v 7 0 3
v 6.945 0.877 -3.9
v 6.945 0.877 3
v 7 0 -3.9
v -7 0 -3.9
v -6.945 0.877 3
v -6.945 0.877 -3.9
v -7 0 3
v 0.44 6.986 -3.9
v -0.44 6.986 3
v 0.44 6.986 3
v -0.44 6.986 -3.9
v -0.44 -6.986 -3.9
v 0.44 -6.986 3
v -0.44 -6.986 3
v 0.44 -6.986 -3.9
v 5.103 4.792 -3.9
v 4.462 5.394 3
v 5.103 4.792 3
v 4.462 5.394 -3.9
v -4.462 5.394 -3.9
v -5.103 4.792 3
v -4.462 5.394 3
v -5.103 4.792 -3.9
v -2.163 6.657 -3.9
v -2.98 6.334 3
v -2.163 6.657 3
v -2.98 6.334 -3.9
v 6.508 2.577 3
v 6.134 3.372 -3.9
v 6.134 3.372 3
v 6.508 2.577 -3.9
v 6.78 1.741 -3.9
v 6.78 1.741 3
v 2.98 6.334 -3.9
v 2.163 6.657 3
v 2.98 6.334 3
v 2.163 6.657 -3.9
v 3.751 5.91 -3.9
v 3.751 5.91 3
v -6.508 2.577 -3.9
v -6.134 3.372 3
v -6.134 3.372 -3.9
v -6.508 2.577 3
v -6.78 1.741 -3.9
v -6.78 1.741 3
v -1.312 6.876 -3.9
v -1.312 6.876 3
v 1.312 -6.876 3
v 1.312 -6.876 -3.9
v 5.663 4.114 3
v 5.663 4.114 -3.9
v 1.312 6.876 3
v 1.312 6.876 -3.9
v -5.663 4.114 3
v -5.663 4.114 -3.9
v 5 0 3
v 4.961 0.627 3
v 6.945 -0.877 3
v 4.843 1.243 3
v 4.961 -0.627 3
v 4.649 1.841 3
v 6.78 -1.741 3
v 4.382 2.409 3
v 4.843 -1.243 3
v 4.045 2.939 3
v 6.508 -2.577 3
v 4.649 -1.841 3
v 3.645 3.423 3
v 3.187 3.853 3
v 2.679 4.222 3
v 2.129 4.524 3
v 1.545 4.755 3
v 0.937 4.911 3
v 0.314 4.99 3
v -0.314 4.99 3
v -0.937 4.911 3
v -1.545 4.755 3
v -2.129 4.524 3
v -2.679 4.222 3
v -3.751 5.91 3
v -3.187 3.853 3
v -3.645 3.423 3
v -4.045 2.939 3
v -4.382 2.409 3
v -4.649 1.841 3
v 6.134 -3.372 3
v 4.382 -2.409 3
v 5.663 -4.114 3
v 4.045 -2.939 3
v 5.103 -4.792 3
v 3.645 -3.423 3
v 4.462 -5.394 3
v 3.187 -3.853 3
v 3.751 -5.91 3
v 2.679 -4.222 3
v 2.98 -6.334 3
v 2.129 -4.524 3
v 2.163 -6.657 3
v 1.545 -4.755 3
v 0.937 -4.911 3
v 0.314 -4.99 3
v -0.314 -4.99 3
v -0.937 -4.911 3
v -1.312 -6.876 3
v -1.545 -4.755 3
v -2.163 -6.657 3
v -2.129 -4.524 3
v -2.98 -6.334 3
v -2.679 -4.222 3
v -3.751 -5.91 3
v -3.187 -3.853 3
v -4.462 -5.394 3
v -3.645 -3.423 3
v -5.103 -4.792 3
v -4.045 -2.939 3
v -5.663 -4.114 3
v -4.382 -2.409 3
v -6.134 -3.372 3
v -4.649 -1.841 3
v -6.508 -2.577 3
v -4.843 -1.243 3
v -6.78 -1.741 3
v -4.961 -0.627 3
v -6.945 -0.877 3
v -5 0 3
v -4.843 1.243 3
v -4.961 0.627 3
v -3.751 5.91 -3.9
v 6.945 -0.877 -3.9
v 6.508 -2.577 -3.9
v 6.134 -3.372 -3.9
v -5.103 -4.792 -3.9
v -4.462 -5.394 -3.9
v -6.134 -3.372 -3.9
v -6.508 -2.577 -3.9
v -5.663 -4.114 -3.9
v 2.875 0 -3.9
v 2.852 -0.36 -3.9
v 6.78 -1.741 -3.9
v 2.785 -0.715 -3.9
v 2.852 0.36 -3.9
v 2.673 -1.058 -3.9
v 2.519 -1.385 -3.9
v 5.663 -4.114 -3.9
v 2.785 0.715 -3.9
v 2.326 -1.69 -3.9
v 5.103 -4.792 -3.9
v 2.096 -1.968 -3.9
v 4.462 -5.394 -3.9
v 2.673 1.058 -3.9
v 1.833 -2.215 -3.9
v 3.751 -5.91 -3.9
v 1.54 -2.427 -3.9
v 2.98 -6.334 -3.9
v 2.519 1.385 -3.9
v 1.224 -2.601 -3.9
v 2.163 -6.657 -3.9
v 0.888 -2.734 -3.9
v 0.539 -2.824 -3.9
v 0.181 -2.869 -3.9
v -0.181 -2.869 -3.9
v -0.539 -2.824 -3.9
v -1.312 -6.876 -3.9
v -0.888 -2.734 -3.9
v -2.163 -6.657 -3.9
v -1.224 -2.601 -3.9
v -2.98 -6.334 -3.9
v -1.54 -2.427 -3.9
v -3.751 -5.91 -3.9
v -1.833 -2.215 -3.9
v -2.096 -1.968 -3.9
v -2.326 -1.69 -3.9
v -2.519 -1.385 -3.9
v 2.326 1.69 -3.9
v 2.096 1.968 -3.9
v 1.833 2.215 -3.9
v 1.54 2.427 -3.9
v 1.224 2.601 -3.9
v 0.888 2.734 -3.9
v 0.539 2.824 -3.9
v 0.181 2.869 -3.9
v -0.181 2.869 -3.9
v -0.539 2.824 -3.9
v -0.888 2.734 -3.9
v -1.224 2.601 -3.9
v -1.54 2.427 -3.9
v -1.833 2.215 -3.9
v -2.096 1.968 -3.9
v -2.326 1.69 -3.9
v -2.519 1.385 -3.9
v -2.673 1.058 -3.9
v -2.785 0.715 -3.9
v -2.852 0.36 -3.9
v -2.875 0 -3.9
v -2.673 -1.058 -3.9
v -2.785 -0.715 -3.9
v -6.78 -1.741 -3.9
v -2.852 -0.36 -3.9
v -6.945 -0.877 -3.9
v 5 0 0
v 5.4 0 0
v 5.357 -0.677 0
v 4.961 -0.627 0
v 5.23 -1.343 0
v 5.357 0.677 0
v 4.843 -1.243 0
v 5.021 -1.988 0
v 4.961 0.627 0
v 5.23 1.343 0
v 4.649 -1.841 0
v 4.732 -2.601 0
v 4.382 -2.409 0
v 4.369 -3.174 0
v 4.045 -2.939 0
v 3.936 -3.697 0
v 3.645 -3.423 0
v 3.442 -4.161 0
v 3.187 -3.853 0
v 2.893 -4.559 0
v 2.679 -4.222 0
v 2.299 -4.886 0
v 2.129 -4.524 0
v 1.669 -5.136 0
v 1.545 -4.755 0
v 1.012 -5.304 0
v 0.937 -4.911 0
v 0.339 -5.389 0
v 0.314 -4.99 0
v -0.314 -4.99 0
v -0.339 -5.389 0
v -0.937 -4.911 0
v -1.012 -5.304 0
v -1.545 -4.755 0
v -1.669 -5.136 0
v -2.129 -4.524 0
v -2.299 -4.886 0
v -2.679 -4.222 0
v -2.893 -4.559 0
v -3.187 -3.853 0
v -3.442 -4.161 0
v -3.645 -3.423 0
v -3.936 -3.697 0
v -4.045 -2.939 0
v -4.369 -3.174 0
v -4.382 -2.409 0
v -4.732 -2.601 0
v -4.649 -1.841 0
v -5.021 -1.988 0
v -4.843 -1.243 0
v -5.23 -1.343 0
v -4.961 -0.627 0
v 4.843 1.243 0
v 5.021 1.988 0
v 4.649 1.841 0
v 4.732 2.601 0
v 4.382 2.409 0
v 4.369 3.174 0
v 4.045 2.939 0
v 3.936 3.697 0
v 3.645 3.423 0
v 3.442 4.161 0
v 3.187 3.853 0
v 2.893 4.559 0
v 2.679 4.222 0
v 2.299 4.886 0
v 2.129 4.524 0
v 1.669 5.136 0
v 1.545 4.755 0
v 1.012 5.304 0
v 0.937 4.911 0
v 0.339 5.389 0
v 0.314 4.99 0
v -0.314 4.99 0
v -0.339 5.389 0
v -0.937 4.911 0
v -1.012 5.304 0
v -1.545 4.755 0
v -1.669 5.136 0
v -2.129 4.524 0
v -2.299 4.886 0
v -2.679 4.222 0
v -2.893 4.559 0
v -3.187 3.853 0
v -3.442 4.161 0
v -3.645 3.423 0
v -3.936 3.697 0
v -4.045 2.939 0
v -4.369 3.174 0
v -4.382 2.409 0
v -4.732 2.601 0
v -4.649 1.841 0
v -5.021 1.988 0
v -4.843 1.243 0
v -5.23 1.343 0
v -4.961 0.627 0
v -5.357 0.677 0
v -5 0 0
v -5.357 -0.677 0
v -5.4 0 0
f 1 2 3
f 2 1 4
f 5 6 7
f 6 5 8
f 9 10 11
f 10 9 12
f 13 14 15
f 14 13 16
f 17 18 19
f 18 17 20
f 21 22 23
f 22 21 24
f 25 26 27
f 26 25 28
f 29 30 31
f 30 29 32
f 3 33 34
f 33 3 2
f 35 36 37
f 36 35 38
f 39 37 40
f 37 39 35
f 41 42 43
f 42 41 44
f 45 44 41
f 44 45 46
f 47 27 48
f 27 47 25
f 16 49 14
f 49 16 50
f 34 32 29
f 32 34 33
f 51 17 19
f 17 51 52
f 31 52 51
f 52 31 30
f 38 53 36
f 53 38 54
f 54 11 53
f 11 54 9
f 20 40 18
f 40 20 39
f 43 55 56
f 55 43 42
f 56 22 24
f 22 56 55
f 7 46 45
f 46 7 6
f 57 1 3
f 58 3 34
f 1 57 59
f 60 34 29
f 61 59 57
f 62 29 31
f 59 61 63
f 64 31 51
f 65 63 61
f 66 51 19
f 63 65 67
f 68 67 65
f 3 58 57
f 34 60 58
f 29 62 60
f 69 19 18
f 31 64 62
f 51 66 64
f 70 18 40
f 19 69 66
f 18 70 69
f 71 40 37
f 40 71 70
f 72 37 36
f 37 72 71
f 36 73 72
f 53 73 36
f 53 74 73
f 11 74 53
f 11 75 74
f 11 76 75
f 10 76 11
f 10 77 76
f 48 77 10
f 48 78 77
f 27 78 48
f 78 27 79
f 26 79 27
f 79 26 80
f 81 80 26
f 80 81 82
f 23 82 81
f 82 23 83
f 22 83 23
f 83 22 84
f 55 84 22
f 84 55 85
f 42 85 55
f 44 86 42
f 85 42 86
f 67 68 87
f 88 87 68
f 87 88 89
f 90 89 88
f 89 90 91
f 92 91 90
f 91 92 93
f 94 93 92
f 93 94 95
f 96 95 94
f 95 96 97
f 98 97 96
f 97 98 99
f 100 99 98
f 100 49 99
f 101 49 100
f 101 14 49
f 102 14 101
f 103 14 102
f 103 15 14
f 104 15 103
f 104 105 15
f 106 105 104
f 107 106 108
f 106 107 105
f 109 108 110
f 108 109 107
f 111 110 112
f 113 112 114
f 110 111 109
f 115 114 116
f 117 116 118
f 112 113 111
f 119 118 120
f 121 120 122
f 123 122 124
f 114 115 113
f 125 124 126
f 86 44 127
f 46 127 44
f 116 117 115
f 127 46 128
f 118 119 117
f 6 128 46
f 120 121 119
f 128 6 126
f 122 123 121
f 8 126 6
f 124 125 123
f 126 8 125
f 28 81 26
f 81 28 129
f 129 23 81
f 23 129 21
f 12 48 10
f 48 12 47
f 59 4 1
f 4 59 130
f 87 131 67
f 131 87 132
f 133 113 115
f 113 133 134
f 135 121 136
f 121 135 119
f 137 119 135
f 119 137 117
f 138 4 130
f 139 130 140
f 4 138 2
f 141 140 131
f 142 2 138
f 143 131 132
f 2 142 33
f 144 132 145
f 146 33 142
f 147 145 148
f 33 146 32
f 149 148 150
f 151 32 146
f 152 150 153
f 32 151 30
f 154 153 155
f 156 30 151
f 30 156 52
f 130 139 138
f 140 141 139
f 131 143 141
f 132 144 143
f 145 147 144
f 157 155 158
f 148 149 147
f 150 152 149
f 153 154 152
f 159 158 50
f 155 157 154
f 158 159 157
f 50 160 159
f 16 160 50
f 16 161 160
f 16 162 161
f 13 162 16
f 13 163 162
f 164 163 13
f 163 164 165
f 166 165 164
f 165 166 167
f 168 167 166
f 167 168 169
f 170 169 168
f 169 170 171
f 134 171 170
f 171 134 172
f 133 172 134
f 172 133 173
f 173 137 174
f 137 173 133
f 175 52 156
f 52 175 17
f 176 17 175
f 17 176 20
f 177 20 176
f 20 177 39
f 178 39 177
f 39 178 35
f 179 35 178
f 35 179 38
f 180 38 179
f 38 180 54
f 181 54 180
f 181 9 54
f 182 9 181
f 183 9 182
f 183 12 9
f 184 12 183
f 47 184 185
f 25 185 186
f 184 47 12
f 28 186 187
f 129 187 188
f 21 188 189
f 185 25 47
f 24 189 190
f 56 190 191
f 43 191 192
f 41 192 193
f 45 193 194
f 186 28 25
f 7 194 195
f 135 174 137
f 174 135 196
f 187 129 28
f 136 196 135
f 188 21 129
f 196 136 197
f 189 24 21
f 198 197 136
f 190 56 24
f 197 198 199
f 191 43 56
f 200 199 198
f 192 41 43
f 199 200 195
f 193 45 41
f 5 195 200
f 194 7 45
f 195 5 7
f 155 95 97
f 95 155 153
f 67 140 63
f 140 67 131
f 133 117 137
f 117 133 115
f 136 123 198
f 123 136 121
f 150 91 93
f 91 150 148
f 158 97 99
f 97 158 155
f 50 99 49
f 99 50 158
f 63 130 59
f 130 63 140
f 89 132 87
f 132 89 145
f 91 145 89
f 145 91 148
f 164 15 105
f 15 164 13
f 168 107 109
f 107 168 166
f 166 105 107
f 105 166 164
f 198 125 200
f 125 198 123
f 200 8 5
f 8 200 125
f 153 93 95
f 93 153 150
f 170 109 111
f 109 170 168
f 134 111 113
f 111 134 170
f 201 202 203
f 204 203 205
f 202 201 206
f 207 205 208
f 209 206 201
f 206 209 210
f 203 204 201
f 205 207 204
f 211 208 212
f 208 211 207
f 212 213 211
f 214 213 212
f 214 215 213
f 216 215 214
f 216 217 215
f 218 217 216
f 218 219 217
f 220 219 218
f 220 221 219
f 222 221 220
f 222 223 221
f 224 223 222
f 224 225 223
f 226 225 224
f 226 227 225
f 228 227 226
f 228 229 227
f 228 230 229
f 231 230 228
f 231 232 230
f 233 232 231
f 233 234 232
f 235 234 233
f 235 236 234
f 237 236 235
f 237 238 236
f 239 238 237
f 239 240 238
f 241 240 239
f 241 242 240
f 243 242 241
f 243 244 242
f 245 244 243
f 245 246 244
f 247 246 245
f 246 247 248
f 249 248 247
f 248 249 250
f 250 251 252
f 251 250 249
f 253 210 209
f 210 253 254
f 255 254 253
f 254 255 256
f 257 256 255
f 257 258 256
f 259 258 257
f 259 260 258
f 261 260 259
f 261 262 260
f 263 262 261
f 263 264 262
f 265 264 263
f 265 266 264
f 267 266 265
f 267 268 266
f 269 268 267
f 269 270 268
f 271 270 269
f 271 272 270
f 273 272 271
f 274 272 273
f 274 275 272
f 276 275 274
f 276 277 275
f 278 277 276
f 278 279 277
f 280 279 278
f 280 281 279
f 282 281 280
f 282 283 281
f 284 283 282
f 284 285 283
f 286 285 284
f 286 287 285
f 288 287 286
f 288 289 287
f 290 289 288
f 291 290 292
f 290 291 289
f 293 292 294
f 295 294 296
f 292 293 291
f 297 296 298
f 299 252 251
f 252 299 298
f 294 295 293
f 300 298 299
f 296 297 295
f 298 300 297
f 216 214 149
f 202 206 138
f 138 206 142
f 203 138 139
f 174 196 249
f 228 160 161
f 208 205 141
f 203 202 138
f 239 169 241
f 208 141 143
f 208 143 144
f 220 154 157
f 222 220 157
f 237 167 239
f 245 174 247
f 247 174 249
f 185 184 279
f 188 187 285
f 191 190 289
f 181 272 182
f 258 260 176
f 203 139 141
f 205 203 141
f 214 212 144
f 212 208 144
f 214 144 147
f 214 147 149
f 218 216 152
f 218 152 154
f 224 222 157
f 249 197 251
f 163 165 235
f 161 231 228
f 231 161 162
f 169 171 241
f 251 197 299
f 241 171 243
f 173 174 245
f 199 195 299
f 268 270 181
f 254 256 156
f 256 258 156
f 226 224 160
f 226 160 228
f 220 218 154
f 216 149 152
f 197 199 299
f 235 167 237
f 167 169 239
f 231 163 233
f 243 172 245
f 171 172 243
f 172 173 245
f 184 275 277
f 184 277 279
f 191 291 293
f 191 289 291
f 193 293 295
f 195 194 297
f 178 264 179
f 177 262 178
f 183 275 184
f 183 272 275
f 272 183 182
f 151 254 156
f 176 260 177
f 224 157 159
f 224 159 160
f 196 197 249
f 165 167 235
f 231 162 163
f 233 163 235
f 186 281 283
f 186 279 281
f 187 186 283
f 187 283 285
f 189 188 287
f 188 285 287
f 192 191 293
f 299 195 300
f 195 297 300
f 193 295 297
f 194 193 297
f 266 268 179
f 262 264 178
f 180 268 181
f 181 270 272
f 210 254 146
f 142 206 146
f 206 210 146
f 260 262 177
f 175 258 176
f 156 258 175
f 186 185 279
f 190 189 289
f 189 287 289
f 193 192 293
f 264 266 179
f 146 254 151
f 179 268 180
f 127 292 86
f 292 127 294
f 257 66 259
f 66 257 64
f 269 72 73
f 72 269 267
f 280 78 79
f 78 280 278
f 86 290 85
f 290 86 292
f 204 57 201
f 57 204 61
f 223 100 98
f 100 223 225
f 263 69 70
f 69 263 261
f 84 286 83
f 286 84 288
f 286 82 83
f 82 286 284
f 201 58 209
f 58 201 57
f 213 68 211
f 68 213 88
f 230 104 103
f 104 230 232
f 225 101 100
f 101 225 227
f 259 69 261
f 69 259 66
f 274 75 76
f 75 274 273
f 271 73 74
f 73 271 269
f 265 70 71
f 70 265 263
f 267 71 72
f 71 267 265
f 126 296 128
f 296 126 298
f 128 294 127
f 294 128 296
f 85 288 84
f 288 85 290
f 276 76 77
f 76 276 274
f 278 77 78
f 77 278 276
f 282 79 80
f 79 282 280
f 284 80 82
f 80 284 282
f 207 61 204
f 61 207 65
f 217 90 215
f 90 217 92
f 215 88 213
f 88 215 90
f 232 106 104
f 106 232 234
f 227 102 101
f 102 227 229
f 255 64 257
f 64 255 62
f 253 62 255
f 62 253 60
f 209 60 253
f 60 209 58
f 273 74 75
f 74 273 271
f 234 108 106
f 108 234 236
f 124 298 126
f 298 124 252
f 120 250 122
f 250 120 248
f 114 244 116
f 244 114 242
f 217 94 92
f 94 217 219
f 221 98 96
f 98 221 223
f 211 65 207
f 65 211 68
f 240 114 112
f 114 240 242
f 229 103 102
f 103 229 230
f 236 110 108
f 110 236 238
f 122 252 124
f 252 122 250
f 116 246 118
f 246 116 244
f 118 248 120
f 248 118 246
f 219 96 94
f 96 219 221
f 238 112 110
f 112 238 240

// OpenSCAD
$fn = 50;

difference() {
	union() {
		translate(v = [0, 0, -3.9000000000000004]) {
			cylinder(h = 6.9, r = 7.0);
		}
		#translate(v = [0, 0, -6.9]) {
			cylinder(h = 6.9, r = 2.875);
		}
	}
	union() {
		translate(v = [0, 0, 0]) {
			rotate(a = [0, 0, 0]) {
				difference() {
					union() {
						translate(v = [0, 0, -6.9]) {
							cylinder(h = 6.9, r = 2.6);
						}
						translate(v = [0, 0, -3.9]) {
							cylinder(h = 3.9, r1 = 2.875, r2 = 5.4);
						}
						translate(v = [0, 0, -6.9]) {
							cylinder(h = 6.9, r = 2.875);
						}
						translate(v = [0, 0, -6.9]) {
							cylinder(h = 6.9, r = 2.6);
						}
					}
					union();
				}
			}
		}
		#cylinder(h = 3, r = 5.0);
	}
}
